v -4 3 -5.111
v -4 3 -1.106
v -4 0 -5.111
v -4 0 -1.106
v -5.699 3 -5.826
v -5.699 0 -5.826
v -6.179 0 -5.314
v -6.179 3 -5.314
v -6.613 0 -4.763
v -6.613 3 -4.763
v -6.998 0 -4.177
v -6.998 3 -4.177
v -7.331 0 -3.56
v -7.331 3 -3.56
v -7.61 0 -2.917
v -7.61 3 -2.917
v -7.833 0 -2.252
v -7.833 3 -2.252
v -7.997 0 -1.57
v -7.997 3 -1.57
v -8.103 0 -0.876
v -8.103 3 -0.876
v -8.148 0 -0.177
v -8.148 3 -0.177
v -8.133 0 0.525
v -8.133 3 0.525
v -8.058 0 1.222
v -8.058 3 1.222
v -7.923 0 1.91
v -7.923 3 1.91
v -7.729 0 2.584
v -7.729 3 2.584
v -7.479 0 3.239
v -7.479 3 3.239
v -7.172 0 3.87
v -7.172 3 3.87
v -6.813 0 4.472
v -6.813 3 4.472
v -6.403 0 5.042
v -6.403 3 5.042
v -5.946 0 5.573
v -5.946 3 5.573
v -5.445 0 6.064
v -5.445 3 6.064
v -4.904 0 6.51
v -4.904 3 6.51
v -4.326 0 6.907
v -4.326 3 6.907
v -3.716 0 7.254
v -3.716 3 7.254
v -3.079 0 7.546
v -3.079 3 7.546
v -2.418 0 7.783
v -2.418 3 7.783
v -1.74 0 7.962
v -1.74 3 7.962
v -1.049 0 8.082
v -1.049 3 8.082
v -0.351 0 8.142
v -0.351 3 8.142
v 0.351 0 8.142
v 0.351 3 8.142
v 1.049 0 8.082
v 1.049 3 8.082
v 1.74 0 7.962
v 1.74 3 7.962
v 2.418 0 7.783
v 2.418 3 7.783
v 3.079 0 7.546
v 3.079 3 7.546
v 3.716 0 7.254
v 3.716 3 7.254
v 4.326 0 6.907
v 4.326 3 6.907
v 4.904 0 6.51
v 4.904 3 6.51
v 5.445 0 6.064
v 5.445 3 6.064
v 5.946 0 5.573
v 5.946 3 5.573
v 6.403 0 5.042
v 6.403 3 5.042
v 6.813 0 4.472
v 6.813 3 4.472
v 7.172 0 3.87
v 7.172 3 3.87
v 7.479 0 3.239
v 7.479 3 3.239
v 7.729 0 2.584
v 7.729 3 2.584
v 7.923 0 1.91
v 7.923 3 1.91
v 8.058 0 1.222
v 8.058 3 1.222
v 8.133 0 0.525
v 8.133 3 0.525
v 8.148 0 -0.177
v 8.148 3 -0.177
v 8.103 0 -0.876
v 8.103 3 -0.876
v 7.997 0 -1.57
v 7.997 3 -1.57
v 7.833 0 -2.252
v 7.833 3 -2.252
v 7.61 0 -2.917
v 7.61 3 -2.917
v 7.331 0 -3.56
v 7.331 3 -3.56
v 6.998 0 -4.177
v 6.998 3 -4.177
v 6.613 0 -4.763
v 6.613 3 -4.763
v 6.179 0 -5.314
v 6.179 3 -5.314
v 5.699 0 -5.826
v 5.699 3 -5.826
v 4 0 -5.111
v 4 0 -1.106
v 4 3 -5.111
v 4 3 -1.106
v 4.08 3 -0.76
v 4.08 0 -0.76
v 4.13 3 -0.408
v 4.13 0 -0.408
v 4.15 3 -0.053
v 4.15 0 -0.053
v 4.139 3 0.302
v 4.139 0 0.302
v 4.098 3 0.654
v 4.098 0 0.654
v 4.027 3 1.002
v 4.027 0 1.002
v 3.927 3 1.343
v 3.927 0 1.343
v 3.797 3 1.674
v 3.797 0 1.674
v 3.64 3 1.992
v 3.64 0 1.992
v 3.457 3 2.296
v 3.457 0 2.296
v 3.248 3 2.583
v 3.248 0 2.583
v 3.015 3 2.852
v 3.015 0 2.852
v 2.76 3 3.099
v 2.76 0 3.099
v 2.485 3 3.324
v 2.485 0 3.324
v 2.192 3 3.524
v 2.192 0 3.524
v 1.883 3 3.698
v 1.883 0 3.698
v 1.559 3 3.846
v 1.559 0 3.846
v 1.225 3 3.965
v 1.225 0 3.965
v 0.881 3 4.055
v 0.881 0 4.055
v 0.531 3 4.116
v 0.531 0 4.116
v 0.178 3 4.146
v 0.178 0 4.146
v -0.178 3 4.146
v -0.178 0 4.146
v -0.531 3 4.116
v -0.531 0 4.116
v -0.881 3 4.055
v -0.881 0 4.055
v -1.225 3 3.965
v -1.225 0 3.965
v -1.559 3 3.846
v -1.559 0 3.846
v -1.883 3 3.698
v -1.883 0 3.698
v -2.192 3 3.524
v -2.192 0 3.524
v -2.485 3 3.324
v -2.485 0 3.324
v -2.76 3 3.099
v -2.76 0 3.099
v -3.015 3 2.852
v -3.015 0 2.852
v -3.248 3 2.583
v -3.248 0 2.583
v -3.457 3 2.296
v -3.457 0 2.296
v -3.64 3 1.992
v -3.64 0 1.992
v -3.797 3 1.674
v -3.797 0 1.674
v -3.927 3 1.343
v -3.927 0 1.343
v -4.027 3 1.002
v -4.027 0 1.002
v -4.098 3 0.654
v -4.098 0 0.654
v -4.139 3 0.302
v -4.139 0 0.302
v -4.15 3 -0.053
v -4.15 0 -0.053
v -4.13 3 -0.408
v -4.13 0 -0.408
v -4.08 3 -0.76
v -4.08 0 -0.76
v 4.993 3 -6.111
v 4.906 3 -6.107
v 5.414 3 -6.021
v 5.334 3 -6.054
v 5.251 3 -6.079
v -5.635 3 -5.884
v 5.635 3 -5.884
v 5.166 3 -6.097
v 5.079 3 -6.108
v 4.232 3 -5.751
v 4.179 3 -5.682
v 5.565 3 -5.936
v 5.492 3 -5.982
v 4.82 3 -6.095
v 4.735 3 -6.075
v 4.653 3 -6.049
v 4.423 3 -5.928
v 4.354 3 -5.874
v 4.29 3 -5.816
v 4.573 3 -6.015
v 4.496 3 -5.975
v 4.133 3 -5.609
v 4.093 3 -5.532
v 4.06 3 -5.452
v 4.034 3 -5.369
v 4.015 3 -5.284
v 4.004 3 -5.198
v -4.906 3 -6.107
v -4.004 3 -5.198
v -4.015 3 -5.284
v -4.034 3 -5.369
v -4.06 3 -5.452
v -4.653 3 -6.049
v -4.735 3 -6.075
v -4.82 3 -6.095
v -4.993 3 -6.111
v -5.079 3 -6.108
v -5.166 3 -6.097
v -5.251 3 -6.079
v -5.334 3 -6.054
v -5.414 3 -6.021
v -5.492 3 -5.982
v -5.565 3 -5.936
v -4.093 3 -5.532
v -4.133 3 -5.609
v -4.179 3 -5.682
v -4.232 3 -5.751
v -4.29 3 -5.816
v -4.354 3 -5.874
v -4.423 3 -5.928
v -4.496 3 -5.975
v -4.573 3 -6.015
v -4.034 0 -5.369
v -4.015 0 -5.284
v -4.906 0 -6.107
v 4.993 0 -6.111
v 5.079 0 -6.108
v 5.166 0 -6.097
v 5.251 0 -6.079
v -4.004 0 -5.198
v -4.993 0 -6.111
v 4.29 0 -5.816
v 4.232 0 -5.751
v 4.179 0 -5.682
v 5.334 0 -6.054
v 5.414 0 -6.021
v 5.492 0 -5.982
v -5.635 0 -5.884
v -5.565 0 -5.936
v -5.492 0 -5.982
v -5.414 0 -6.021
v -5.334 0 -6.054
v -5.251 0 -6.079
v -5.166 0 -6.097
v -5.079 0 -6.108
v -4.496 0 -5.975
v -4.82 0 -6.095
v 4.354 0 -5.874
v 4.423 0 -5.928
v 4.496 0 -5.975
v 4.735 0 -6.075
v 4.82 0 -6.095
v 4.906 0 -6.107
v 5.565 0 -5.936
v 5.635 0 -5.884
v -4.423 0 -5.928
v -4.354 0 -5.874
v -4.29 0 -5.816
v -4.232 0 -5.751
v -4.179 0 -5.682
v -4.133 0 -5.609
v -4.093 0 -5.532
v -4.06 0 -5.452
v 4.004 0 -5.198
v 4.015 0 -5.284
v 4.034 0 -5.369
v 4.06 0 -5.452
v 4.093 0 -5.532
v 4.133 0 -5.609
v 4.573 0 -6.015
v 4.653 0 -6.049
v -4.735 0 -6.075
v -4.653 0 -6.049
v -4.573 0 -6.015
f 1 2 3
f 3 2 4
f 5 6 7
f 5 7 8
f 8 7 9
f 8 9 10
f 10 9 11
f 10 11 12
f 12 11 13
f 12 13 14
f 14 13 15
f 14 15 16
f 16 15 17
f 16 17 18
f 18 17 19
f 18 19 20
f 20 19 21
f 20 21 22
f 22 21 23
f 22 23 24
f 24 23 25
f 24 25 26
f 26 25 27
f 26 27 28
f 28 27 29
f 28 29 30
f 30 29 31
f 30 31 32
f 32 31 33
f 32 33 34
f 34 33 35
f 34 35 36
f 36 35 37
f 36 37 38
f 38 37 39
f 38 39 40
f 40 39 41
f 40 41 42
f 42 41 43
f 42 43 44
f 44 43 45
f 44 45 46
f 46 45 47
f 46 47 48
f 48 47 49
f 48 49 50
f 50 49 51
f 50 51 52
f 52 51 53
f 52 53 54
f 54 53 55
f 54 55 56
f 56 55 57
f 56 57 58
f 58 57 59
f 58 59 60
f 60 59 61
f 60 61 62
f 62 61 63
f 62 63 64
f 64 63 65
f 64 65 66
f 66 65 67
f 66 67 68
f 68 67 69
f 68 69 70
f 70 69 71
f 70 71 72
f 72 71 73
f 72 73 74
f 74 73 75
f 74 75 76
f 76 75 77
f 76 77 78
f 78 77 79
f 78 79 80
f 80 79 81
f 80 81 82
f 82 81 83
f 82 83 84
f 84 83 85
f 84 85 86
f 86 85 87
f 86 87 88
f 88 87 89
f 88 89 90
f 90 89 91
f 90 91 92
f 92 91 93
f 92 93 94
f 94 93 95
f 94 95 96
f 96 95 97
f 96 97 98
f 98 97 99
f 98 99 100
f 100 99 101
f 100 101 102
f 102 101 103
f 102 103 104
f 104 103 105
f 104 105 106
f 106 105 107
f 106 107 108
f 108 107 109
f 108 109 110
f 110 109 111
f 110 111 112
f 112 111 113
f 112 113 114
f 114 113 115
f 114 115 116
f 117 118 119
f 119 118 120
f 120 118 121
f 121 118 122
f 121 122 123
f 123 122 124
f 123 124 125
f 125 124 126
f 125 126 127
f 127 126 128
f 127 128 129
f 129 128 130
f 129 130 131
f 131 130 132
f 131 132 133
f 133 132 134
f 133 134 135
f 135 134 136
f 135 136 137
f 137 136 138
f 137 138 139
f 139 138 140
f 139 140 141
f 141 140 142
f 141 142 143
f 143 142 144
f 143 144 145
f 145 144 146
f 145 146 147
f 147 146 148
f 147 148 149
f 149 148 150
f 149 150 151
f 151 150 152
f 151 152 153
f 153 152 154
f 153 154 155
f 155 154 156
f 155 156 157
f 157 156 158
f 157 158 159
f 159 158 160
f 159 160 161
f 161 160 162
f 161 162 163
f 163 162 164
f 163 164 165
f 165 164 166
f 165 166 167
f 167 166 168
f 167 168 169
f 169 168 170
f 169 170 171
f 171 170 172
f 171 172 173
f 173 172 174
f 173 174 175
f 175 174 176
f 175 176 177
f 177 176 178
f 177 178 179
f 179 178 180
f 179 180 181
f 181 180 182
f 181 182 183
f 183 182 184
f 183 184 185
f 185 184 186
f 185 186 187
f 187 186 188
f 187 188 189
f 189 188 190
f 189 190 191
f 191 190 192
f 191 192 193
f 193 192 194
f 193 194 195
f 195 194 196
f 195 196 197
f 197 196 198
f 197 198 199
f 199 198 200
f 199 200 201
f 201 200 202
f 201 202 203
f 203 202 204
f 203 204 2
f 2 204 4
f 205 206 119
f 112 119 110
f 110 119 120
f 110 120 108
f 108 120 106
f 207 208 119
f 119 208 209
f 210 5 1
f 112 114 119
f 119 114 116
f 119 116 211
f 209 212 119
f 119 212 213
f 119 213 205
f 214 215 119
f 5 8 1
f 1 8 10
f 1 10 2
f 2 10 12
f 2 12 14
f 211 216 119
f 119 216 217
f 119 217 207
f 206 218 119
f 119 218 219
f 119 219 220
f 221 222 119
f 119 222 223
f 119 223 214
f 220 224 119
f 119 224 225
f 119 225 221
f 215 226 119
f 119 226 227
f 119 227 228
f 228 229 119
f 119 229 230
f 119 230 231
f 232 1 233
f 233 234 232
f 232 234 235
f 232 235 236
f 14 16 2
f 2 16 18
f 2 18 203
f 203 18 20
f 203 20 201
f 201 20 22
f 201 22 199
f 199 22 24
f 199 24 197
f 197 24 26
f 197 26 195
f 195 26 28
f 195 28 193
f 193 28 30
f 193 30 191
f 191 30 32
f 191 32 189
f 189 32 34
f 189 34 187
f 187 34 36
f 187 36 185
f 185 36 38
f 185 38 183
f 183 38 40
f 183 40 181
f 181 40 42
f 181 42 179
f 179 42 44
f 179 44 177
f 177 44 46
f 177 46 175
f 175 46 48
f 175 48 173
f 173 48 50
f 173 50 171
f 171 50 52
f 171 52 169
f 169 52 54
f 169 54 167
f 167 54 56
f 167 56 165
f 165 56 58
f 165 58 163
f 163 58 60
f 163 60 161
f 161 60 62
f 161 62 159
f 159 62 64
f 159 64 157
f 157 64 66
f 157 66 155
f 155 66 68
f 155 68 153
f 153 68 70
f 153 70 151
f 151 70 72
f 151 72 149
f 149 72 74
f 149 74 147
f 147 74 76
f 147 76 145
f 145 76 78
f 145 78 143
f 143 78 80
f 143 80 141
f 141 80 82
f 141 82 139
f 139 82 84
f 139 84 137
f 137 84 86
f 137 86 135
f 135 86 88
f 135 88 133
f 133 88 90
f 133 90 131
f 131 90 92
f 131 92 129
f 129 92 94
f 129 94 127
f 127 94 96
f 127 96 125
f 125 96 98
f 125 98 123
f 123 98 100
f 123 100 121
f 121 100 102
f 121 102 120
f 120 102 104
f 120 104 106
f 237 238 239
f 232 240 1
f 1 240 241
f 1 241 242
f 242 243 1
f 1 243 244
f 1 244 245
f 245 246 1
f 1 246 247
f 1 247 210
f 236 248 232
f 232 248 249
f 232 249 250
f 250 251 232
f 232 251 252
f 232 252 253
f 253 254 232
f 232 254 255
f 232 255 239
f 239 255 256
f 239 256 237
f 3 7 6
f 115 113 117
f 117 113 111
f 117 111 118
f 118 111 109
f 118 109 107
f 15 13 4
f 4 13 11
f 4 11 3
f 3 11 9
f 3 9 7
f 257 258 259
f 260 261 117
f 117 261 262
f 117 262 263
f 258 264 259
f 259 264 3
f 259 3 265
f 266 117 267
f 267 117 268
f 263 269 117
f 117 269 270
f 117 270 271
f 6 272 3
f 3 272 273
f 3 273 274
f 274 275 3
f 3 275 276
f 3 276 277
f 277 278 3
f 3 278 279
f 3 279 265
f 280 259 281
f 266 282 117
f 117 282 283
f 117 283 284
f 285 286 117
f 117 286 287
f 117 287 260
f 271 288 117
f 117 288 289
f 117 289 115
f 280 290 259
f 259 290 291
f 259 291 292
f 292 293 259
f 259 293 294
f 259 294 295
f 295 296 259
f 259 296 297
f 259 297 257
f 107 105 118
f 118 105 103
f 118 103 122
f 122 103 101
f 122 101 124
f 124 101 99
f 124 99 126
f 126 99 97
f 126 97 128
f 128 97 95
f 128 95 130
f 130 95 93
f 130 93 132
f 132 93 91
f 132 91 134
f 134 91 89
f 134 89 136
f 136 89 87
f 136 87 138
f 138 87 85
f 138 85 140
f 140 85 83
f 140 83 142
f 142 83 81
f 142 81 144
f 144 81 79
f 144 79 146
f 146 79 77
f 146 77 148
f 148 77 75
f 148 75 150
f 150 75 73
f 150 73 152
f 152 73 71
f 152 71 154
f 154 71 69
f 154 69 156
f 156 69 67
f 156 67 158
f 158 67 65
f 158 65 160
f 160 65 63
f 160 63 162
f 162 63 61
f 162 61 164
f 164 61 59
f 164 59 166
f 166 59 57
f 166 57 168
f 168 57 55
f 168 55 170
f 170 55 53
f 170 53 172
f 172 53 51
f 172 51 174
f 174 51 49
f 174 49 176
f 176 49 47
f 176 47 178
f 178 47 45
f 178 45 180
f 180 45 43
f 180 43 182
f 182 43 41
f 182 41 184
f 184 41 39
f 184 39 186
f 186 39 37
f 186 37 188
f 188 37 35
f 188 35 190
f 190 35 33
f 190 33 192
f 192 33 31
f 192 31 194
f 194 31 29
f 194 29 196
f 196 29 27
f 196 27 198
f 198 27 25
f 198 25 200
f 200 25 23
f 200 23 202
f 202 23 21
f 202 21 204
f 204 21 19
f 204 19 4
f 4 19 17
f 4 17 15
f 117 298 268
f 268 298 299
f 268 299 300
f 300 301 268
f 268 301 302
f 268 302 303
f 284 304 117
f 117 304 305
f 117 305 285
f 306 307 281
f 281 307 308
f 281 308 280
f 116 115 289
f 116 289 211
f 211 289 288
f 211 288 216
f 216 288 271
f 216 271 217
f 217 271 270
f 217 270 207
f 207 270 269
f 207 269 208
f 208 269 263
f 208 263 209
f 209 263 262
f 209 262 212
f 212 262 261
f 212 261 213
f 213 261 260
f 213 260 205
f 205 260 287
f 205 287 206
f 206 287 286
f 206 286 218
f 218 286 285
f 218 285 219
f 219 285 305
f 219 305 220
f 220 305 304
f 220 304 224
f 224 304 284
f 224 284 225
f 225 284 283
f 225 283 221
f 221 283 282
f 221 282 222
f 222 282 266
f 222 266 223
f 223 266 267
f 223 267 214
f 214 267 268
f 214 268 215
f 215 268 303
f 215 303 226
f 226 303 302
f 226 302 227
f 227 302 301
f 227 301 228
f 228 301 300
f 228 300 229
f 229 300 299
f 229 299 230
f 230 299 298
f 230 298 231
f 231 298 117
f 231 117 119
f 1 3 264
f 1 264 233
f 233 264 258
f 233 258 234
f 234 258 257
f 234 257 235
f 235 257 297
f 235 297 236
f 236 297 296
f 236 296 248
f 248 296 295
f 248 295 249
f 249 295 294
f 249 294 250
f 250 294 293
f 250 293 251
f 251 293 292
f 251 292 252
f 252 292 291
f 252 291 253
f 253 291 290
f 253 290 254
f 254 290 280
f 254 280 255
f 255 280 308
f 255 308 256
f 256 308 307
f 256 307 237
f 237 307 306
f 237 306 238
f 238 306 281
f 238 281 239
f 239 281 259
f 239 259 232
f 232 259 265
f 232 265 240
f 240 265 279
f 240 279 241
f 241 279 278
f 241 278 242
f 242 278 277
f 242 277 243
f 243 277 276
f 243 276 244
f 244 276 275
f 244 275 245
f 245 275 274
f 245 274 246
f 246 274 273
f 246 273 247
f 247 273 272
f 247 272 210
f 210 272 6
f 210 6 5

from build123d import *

# Parameters (mm, degrees)
BOSS_EXTRUDE1_DEPTH = 3
FILLET1_R           = 1


with BuildPart() as part:
    # Sketch1 → Boss-Extrude1 (new body)
    with BuildSketch(Plane(origin=(0, 0, 0), x_dir=(1, 0, 0), z_dir=(0, 1, 0))):
        with BuildLine():
            ThreePointArc((8.15, 0), (7.036423097, 4.112329024), (4, 7.100880227))
            Line((4, 7.100880227), (4, 1.105667219))
            ThreePointArc((4, 1.105667219), (4.112329024, 0.55789784), (4.15, 0))
            ThreePointArc((4.15, 0), (-0.55789784, -4.112329024), (-4, 1.105667219))
            Line((-4, 1.105667219), (-4, 7.100880227))
            ThreePointArc((-4, 7.100880227), (-4.112329024, -7.036423097), (8.15, 0))
        make_face()
    extrude(amount=BOSS_EXTRUDE1_DEPTH)

    # Fillet1
    fillet1_edges = [part.edges().sort_by_distance(p)[0] for p in [
        (4, 1.5, -7.100880227),
        (-4, 1.5, -7.100880227),
    ]]
    fillet(fillet1_edges, radius=FILLET1_R)


solid = part.part
